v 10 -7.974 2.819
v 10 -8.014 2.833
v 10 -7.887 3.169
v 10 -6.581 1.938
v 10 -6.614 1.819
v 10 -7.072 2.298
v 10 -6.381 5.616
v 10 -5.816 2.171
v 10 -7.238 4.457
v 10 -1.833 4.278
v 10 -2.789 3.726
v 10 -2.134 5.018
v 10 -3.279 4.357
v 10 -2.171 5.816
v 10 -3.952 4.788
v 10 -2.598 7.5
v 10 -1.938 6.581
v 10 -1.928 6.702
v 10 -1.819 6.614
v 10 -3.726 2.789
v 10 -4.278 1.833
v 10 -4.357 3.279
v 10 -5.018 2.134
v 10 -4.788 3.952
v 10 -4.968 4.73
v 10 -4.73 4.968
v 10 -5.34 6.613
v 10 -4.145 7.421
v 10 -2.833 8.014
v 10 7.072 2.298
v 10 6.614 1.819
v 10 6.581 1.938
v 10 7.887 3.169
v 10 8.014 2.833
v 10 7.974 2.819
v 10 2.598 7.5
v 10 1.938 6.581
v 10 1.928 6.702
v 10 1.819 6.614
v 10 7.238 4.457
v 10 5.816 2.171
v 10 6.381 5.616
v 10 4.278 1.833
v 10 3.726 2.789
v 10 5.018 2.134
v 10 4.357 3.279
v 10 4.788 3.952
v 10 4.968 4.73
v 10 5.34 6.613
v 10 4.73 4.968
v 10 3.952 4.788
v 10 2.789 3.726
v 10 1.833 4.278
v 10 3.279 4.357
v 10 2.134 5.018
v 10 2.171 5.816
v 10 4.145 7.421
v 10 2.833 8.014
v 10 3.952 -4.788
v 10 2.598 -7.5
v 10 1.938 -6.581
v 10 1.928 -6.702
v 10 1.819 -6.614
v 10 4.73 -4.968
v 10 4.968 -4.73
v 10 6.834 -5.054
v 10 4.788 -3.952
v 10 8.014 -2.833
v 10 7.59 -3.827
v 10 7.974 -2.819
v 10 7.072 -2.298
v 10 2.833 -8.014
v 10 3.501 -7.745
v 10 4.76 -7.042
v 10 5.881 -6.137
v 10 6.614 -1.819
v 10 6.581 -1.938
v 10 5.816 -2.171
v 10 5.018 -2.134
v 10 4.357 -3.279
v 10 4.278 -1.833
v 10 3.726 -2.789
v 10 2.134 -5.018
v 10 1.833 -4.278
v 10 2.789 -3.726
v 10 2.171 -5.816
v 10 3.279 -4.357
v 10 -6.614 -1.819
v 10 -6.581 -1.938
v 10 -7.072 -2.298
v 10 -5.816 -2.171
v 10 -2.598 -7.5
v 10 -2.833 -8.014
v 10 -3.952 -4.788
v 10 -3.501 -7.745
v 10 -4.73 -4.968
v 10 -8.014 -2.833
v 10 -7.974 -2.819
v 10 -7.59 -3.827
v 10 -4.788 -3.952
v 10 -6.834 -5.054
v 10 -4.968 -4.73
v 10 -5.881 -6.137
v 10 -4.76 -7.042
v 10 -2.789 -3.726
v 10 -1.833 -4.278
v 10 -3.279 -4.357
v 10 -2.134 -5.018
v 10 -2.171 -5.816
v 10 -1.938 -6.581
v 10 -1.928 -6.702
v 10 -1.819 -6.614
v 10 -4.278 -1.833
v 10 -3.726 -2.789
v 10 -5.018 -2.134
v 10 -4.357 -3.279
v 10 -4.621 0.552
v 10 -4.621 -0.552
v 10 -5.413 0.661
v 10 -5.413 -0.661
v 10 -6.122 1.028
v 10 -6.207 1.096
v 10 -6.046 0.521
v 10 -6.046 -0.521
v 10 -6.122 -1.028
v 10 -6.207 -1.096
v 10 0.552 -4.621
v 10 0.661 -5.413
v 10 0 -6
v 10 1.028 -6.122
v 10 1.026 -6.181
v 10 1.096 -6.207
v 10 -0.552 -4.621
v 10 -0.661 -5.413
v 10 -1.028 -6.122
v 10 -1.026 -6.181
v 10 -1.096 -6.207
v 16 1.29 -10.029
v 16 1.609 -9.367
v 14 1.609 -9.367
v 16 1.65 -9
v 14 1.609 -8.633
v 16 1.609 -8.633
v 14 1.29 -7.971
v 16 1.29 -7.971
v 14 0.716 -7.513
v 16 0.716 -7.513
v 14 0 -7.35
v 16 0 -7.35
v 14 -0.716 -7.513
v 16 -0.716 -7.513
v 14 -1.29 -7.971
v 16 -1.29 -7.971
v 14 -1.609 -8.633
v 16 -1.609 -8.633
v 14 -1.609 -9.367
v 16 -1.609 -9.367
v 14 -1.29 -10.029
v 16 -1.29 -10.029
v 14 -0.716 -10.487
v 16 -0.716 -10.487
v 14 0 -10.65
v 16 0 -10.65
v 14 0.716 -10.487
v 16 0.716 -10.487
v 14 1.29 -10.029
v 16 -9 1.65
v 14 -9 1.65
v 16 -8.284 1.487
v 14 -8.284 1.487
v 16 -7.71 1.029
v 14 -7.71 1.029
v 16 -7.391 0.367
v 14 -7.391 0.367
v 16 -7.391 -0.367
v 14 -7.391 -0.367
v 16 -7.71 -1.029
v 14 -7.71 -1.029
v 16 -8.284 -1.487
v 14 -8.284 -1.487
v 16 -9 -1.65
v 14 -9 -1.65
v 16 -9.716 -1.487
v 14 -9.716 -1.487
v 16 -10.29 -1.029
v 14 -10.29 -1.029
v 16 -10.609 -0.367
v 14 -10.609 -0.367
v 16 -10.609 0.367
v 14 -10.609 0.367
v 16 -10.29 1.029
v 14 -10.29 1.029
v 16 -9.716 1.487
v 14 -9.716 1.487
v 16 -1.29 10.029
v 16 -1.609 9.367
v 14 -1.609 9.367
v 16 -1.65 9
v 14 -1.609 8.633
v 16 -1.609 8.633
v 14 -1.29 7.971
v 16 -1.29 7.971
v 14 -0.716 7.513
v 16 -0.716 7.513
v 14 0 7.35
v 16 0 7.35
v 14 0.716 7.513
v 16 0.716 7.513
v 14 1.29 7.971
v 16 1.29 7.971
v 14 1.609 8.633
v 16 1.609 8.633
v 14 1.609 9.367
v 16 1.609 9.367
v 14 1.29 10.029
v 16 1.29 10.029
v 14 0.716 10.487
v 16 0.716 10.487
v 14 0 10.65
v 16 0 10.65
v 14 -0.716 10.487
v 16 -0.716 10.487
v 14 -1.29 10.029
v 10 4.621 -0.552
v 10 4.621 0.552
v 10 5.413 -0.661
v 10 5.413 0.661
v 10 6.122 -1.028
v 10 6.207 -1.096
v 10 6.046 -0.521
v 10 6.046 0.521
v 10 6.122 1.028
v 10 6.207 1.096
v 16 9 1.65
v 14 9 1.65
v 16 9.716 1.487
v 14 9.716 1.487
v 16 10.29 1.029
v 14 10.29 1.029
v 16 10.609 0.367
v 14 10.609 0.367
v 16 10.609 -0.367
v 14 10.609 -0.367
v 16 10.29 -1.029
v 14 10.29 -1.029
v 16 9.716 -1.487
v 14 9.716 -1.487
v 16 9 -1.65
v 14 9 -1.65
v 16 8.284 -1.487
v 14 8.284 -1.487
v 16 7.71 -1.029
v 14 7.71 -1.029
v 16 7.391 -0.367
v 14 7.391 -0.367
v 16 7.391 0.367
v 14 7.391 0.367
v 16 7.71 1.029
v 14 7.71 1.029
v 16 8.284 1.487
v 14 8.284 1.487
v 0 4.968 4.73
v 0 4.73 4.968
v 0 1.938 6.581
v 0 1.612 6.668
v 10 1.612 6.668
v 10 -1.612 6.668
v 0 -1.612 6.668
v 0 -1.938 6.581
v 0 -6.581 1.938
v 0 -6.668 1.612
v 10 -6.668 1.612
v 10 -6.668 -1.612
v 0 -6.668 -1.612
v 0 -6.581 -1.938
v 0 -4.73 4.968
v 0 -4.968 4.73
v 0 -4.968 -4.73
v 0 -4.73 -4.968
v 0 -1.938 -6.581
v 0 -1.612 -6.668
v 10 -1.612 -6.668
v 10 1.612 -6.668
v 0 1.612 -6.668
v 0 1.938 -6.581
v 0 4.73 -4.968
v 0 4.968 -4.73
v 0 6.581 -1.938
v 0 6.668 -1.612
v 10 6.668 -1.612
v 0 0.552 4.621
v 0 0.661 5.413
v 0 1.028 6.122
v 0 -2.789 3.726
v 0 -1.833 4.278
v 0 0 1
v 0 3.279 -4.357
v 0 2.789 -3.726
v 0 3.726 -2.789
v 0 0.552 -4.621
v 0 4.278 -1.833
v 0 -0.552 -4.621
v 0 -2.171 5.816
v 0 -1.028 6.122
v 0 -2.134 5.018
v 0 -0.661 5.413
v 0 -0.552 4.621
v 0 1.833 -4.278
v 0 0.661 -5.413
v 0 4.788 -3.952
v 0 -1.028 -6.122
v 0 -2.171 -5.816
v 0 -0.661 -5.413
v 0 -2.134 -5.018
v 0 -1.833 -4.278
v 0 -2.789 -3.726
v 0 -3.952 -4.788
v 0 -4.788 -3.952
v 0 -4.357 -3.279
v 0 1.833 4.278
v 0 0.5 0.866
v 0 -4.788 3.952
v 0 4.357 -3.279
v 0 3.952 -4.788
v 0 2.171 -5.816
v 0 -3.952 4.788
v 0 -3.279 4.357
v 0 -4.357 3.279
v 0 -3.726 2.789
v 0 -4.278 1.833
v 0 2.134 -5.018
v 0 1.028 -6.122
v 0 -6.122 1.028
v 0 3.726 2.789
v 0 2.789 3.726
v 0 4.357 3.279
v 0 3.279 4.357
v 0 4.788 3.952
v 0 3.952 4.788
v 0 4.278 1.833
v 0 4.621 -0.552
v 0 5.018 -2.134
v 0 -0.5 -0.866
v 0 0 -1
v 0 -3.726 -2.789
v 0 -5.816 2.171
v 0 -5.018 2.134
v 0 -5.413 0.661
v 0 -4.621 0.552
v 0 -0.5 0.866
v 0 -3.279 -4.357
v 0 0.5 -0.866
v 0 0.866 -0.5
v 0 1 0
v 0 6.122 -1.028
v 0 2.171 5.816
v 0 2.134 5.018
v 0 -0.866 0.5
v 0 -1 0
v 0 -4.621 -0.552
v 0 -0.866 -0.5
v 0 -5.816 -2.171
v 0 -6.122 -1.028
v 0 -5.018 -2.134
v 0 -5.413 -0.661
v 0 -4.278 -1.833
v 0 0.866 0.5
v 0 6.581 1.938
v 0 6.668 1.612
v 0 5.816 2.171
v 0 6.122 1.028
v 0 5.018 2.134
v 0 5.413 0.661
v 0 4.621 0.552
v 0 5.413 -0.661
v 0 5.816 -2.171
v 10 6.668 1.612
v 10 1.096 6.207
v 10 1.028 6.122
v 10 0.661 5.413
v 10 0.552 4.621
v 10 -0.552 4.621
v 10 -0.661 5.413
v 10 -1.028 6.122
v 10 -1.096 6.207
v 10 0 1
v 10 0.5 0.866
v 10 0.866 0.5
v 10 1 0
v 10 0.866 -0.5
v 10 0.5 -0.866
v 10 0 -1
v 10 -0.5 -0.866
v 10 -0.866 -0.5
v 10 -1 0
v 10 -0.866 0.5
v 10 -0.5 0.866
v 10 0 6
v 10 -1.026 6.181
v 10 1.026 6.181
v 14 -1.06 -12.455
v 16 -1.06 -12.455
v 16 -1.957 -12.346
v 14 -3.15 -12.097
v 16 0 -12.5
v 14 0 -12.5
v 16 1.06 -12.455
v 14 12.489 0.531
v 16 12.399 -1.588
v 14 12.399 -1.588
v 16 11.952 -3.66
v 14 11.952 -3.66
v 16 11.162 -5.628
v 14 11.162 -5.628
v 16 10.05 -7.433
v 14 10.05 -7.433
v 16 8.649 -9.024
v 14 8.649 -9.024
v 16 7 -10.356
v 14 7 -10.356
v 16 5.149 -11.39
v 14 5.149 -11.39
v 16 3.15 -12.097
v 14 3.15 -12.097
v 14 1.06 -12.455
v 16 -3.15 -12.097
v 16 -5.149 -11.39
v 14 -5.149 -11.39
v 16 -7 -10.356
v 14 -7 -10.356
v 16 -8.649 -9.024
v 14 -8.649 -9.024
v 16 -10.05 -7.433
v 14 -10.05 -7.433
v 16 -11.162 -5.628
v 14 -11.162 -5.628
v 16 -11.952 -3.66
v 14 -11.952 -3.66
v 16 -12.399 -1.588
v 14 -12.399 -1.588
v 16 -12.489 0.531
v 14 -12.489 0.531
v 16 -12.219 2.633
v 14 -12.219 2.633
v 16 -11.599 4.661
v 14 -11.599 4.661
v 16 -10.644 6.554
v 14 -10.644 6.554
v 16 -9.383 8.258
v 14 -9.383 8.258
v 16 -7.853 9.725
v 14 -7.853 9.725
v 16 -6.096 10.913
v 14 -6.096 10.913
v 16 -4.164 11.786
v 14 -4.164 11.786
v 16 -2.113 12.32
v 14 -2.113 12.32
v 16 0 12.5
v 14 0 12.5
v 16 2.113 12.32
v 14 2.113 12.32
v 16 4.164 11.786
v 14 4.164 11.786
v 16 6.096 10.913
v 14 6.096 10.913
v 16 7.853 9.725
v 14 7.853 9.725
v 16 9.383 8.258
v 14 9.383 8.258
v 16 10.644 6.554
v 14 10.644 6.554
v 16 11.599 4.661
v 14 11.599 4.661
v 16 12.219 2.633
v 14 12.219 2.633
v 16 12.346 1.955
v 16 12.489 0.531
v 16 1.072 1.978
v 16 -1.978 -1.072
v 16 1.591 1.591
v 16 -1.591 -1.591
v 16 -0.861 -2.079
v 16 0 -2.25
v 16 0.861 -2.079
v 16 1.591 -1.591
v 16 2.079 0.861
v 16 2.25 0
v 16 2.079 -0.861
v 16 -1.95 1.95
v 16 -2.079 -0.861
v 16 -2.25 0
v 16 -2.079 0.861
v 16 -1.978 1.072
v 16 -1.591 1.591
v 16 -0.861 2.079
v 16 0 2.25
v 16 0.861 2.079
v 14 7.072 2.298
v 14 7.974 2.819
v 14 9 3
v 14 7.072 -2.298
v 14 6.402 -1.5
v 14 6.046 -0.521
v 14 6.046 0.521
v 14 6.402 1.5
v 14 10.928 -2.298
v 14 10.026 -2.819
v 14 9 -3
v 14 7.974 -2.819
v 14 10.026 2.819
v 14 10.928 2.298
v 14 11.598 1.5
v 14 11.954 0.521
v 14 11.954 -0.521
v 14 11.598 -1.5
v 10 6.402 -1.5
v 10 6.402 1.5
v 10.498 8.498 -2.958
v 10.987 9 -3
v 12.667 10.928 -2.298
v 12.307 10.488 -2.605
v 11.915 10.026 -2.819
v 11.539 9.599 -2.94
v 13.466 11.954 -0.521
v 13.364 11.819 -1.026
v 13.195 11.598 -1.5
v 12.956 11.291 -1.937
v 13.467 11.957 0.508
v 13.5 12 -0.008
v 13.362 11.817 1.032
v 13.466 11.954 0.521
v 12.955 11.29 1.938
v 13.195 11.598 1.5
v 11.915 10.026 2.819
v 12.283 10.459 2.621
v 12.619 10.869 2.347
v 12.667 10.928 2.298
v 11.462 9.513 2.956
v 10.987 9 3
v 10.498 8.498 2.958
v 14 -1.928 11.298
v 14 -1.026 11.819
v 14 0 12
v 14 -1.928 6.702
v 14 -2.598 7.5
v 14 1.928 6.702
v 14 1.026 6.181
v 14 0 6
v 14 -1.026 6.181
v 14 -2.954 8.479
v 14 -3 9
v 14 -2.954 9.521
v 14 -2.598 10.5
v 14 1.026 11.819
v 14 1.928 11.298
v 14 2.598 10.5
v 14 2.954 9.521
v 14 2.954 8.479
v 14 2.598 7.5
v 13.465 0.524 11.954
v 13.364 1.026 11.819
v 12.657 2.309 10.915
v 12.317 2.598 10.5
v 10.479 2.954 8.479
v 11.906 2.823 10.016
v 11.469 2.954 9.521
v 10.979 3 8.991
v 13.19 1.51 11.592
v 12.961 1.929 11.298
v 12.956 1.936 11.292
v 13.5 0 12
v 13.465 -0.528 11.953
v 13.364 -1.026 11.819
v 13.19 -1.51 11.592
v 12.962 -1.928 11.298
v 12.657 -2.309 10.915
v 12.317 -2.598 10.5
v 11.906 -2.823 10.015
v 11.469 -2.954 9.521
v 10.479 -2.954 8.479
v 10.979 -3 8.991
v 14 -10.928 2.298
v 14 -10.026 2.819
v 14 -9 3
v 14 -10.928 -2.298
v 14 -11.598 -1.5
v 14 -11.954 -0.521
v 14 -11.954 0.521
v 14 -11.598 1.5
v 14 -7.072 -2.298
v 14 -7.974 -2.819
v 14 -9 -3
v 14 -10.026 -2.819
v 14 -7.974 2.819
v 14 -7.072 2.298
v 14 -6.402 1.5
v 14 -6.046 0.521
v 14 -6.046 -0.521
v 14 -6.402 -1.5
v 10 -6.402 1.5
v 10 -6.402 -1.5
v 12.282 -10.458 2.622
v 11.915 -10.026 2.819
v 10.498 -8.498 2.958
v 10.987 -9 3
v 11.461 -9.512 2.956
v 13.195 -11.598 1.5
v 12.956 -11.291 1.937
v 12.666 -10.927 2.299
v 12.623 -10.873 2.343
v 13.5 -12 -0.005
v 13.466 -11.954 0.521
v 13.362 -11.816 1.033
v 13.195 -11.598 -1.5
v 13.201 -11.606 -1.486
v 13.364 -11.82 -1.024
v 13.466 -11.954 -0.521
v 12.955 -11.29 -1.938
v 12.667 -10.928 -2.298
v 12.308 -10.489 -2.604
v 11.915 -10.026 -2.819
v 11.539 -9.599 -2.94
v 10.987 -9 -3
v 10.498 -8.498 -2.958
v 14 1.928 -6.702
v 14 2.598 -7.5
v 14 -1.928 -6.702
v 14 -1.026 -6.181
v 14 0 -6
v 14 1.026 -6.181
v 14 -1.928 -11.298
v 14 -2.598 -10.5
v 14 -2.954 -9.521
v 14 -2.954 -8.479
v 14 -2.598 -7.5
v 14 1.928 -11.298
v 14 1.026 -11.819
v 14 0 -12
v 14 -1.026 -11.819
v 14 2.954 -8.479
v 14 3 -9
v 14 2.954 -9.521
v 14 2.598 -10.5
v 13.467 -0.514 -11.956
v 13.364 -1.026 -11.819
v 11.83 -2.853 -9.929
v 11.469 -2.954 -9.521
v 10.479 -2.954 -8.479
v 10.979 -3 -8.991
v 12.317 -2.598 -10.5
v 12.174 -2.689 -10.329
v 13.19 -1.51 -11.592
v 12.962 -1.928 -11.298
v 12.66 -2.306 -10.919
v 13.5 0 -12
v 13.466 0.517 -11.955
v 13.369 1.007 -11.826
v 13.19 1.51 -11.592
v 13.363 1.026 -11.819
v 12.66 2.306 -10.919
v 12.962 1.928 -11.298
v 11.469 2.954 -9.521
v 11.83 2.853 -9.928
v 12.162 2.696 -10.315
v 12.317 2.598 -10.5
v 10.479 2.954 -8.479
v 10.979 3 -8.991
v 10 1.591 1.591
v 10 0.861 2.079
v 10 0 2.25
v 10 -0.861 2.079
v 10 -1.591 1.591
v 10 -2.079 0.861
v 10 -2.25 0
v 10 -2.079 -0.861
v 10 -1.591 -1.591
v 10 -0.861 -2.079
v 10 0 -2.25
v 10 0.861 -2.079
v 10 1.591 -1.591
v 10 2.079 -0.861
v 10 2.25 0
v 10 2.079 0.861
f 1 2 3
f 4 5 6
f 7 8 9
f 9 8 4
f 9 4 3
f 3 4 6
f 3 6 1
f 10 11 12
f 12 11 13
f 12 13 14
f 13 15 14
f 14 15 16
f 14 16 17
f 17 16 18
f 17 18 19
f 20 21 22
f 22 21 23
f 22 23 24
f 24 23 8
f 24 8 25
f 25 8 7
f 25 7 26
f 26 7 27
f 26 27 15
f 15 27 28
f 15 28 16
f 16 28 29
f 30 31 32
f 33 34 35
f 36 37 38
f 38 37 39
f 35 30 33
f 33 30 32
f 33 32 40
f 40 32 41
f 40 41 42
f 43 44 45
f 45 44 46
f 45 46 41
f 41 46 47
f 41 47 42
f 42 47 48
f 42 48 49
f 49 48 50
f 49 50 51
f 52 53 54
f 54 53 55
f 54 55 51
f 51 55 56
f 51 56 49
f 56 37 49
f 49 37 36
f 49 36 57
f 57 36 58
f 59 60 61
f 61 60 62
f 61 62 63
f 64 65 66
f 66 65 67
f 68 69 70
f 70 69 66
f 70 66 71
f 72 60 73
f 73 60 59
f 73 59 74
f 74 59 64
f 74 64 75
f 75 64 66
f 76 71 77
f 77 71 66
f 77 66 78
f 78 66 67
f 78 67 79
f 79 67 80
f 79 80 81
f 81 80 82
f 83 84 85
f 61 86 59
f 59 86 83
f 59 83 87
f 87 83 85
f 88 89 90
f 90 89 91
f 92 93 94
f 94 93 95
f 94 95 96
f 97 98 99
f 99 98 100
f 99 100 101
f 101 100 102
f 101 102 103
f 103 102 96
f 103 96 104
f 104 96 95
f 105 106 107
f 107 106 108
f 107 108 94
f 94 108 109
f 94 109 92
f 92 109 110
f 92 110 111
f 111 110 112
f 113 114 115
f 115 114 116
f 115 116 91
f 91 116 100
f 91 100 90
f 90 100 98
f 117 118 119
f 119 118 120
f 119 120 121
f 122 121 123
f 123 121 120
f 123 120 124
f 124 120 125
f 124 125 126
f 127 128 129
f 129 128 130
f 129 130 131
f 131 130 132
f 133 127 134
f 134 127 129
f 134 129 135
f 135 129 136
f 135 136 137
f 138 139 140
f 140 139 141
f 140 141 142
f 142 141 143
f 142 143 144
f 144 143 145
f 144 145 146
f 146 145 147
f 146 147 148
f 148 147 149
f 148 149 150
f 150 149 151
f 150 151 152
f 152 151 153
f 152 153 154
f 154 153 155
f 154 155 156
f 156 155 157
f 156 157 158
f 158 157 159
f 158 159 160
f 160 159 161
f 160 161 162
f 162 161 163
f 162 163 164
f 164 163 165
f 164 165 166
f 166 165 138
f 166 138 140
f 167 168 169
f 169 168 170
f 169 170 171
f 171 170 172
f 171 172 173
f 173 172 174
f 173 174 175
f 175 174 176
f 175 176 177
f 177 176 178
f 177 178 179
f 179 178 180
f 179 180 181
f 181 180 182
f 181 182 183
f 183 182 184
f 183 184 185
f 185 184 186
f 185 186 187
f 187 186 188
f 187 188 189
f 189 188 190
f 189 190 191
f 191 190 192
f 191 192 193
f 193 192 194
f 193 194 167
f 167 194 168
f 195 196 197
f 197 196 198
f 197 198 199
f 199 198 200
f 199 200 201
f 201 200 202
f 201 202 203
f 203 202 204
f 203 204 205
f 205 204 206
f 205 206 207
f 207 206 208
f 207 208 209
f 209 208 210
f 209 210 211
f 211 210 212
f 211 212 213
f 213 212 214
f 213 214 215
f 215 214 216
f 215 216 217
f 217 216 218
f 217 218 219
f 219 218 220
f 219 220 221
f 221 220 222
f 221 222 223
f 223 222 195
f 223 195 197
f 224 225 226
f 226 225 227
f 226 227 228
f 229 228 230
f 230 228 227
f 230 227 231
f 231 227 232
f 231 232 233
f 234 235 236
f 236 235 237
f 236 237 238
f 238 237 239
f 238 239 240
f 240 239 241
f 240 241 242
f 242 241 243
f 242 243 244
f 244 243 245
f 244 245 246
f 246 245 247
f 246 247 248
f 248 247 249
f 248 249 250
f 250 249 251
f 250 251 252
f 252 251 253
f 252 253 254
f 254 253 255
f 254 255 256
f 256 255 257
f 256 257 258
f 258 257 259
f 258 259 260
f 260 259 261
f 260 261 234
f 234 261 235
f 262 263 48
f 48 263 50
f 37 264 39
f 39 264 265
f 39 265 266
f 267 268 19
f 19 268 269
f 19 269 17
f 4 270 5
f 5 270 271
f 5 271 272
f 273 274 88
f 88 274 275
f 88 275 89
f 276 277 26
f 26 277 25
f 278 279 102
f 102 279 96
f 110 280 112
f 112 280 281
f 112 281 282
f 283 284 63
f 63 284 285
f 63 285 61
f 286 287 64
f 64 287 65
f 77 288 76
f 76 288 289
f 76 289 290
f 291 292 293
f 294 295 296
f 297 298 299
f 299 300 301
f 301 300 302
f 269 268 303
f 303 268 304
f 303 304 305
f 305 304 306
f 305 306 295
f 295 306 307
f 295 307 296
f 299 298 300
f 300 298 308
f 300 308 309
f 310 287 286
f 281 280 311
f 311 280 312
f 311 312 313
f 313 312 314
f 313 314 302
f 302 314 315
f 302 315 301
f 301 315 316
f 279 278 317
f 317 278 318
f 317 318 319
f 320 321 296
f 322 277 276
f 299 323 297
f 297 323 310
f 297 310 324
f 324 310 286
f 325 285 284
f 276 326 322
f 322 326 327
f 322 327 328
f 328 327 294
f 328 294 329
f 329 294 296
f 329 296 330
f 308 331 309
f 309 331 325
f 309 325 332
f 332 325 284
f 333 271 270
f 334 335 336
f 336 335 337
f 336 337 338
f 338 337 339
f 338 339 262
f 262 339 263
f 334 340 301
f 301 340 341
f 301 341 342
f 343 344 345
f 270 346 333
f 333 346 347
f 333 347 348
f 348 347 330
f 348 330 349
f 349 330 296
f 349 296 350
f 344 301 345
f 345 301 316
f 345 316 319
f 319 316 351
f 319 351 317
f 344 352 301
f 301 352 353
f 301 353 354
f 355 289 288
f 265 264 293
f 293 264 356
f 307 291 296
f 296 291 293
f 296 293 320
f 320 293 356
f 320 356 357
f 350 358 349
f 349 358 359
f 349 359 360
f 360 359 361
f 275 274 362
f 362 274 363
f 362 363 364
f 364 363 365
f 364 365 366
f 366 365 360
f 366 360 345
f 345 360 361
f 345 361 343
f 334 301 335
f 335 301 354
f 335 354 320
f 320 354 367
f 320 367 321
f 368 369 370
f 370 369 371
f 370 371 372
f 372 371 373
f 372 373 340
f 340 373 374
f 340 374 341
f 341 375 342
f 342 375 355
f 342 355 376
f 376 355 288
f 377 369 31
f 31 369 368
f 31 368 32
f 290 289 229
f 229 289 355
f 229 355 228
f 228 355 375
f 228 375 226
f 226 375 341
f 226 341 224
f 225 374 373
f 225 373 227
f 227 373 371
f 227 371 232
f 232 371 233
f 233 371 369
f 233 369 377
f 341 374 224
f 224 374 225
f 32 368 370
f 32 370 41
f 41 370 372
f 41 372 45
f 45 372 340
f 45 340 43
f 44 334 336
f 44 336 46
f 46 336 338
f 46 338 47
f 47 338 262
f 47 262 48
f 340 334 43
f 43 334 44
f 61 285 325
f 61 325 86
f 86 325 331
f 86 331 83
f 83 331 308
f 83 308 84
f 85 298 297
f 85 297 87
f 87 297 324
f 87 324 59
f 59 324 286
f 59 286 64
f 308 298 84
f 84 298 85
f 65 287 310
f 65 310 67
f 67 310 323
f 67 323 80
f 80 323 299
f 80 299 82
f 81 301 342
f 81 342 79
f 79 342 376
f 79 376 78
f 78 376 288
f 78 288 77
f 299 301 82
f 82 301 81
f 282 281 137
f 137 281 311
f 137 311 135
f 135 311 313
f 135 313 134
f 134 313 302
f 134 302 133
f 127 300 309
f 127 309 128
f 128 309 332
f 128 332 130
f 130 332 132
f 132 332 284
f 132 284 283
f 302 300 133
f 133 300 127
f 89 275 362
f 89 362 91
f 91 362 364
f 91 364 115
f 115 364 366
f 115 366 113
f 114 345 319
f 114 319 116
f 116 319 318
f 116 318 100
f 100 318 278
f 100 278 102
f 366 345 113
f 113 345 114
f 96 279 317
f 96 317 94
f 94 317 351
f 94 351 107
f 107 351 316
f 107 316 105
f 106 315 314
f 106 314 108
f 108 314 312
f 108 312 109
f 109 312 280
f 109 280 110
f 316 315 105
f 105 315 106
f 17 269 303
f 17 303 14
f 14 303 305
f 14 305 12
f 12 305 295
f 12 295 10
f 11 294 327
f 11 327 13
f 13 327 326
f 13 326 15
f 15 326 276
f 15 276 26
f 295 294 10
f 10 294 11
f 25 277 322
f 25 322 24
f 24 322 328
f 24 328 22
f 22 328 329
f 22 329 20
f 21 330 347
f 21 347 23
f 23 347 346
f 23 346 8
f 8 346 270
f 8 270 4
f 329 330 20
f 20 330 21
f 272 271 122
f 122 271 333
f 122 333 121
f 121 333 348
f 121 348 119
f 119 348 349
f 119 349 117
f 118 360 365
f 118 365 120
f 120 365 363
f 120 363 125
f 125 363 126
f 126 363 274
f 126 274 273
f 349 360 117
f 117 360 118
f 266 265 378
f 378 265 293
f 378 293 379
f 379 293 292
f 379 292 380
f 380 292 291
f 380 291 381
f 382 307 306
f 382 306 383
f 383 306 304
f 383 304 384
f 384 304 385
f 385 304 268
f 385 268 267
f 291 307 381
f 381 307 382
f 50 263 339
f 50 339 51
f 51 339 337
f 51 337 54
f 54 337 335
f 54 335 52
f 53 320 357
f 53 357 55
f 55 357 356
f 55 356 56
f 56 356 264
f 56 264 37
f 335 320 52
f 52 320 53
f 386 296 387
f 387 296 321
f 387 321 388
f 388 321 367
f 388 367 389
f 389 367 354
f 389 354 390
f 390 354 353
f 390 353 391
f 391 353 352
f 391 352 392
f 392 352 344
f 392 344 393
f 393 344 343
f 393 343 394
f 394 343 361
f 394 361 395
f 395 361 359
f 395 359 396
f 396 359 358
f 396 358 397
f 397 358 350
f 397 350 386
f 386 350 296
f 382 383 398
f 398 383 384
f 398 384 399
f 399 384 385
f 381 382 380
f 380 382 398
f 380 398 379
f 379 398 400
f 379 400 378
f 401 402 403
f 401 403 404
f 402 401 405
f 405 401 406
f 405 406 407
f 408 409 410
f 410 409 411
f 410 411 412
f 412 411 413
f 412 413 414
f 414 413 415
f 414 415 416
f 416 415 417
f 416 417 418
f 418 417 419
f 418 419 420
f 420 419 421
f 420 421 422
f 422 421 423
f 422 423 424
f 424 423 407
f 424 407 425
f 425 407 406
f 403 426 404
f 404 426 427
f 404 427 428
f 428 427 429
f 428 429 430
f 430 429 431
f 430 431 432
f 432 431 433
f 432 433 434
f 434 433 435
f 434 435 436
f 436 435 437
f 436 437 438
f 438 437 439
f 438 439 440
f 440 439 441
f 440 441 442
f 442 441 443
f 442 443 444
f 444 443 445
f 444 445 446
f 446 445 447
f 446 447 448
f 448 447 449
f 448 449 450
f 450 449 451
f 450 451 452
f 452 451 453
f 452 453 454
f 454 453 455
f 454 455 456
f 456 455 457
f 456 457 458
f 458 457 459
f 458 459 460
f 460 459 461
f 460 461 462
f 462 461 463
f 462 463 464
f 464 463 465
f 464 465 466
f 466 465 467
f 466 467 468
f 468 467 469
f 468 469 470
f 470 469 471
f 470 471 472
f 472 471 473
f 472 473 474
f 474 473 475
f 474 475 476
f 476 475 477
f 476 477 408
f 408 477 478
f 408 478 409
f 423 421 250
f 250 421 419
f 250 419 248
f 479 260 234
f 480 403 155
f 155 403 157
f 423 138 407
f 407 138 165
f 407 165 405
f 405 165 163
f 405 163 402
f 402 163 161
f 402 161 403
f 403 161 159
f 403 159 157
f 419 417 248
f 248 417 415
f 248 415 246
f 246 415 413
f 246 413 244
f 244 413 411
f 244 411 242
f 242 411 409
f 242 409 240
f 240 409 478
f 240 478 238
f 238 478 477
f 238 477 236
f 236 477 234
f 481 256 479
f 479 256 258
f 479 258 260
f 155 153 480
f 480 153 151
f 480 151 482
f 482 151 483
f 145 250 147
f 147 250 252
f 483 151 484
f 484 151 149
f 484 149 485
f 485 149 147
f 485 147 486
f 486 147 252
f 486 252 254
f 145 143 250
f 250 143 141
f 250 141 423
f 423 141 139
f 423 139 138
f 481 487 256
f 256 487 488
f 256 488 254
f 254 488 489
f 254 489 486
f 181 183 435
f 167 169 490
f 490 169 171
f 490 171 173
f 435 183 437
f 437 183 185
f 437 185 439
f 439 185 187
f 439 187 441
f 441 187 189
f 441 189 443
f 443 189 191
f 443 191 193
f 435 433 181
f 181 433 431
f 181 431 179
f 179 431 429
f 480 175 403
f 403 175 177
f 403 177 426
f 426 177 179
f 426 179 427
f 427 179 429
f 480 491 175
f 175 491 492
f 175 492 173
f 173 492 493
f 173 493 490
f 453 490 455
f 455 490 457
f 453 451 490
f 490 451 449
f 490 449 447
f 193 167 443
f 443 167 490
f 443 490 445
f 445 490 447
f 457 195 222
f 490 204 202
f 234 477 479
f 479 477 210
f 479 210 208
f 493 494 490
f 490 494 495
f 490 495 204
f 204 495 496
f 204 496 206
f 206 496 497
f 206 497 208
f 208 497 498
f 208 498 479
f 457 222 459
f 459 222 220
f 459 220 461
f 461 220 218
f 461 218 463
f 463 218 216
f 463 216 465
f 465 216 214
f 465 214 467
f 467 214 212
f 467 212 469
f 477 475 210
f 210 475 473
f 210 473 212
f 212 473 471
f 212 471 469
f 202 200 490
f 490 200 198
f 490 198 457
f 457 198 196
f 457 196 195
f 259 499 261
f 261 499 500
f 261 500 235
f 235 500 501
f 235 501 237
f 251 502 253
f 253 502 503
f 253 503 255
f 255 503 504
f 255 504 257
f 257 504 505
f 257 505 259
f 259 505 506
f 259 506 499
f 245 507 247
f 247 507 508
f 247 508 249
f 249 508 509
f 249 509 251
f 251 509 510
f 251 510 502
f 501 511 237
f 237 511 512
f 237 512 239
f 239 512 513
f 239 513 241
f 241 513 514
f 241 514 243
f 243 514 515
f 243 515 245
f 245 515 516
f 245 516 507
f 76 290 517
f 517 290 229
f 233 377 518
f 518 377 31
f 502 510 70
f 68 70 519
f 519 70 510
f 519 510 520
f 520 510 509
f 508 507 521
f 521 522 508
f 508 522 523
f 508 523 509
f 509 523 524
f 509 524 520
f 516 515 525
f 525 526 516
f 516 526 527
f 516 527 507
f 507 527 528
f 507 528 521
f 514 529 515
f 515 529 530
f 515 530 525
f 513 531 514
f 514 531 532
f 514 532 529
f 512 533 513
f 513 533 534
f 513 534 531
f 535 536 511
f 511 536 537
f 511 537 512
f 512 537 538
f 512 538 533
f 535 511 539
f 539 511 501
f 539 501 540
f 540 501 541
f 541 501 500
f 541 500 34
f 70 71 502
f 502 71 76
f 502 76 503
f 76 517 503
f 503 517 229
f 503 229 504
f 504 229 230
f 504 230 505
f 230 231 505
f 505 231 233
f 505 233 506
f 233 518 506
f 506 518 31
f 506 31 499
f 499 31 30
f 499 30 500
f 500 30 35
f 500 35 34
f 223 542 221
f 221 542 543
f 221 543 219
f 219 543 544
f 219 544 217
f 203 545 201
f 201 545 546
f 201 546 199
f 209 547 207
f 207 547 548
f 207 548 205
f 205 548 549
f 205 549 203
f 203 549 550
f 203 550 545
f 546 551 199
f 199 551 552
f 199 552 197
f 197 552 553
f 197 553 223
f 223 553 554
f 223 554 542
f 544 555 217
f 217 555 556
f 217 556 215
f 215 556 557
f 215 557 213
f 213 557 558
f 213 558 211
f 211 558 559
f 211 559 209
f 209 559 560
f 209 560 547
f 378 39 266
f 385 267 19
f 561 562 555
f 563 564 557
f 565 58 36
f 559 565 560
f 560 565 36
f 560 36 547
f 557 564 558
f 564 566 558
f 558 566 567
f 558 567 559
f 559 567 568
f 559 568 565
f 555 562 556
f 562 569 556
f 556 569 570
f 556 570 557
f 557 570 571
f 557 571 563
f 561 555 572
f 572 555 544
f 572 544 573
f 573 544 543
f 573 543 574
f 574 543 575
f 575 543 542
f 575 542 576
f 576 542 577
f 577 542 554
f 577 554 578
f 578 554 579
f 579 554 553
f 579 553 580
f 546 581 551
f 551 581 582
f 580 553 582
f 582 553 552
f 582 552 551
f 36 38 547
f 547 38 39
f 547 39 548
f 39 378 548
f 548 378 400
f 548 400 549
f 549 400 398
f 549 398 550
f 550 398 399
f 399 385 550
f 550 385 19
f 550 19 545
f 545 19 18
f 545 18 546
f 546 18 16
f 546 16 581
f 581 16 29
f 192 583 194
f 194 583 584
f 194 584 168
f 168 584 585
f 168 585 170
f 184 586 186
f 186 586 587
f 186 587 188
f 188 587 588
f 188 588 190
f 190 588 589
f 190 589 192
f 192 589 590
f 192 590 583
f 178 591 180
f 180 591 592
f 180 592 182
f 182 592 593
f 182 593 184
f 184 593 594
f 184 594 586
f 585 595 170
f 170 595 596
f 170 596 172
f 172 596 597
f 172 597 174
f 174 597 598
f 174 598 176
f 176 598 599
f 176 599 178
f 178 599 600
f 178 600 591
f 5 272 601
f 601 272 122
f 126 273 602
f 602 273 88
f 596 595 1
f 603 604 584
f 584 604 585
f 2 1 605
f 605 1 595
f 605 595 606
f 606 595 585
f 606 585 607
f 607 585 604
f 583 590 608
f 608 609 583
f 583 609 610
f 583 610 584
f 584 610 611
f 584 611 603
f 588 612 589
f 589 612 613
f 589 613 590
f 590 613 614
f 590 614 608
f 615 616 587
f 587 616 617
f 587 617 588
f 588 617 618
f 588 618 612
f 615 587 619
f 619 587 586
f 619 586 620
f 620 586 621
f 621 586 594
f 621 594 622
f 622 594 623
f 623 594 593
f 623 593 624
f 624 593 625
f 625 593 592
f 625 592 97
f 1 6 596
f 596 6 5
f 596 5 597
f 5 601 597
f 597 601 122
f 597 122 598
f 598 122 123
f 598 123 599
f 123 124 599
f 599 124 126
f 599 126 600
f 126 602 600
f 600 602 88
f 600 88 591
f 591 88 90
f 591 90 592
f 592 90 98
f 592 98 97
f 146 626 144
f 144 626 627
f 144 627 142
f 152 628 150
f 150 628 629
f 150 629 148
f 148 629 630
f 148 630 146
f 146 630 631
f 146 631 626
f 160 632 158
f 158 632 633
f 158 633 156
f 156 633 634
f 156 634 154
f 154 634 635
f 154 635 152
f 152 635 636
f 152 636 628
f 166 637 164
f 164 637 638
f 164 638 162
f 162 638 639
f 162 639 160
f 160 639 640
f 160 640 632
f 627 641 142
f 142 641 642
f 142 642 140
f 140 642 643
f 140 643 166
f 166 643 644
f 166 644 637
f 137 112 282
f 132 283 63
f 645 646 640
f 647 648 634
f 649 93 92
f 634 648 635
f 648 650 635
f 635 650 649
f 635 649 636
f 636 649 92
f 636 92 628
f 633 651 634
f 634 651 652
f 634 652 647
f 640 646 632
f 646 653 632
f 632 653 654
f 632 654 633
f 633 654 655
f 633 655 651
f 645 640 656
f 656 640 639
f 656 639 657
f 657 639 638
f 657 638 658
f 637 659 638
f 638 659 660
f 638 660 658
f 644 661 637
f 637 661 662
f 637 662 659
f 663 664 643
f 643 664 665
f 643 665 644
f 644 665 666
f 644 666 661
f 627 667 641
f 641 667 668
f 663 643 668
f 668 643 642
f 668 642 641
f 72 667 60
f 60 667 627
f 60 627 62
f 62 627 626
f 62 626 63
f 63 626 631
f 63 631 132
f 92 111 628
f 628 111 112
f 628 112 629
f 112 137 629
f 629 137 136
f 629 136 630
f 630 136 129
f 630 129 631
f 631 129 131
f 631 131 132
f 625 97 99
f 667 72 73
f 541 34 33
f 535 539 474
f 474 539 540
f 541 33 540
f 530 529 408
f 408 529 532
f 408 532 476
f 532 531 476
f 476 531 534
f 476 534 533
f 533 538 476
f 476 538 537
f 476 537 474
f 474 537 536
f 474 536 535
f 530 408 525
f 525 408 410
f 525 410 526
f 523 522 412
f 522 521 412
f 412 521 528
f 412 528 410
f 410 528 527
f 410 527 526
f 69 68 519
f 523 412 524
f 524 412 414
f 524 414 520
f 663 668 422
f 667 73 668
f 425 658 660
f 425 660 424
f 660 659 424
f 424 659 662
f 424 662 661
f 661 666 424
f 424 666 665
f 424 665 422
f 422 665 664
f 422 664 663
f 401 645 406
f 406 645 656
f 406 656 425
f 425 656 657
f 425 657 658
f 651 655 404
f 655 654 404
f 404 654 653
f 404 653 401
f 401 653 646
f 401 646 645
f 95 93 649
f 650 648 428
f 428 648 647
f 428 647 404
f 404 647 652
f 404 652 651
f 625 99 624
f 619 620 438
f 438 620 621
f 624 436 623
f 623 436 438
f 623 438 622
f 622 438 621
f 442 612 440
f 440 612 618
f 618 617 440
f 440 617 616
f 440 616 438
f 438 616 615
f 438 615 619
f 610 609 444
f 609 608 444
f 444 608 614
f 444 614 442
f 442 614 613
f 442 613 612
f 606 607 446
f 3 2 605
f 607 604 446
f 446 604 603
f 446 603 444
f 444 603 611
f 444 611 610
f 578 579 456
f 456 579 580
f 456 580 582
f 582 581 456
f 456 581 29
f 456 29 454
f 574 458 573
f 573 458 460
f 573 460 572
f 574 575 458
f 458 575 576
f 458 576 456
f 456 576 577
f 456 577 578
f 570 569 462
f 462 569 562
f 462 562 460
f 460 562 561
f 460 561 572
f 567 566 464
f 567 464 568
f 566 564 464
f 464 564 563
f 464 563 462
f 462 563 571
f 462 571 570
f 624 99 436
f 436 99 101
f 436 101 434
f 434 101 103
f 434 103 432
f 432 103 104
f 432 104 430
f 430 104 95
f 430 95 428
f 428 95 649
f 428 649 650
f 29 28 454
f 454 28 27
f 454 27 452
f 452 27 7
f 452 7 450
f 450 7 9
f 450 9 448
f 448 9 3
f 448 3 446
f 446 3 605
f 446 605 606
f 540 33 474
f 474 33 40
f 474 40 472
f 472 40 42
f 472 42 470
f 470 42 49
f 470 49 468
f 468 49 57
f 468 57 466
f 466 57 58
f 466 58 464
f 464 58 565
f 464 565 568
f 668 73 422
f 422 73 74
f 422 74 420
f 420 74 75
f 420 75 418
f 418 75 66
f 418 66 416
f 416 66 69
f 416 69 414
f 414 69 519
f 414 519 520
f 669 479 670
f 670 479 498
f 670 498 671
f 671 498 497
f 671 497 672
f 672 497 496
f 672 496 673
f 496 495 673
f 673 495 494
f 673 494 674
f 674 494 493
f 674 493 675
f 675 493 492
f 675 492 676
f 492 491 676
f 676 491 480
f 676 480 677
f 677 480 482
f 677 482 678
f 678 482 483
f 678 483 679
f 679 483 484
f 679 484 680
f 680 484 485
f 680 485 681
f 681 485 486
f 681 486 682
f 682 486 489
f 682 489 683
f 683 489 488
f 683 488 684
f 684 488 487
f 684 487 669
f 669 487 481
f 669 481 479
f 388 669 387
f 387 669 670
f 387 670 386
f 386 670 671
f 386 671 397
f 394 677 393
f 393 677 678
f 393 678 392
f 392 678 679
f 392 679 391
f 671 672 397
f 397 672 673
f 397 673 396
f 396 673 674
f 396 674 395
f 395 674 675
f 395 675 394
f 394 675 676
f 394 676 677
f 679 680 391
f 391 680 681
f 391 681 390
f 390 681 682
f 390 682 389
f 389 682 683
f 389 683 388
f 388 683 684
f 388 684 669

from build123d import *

# Parameters (mm, degrees)
BASPROSKE_W         = 10
BASPROSKE_H         = 6.86
TOOTHCUT_DEPTH      = 14.932666651
TEETHCUTS_COUNT     = 12
TEETHCUTS_ANGLE     = 330
BORSKE_R            = 1
BORE_DEPTH          = 50.0000508
SKETCH1_R           = 12.5
BOSS_EXTRUDE1_DEPTH = 6
SKETCH2_R           = 1.65
CUT_EXTRUDE1_DEPTH  = 21.310096012
SKETCH3_R           = 3
CUT_EXTRUDE2_DEPTH  = 4
CIRPATTERN1_COUNT   = 4
CHAMFER1_SIZE       = 4
SKETCH4_R           = 2.25
CUT_EXTRUDE3_DEPTH  = 6


with BuildPart() as part:
    # BasProSke → Base-Revolve (revolve)
    with BuildSketch(Plane(origin=(0, 0, 0), x_dir=(1, 0, 0), z_dir=(0, 1, 0)), mode=Mode.PRIVATE) as base_revolve_sk:
        with Locations((5, 3.43)):
            Rectangle(BASPROSKE_W, BASPROSKE_H)
    revolve(base_revolve_sk.sketch.rotate(Axis((-10, 0, 0), (1, 0, 0)), 180), axis=Axis((-10, 0, 0), (1, 0, 0)))

    # TooCutSke → ToothCut (cut, through all)
    with BuildSketch(Plane(origin=(0, 0, 0), x_dir=(0, 0, -1), z_dir=(1, 0, 0))):
        with BuildLine():
            ThreePointArc((0.552016647, 4.621146354), (0, 4.654), (-0.552016647, 4.621146354))
            ThreePointArc((-0.552016647, 4.621146354), (-0.822258441, 5.798784691), (-1.641510828, 6.686865885))
            ThreePointArc((-1.641510828, 6.686865885), (0, 6.8854), (1.641510828, 6.686865885))
            ThreePointArc((1.641510828, 6.686865885), (0.822258441, 5.798784691), (0.552016647, 4.621146354))
        make_face()
    toothcut = extrude(amount=TOOTHCUT_DEPTH, mode=Mode.SUBTRACT)

    # TeethCuts: ToothCut ×12 about axis
    teethcuts_axis = Axis((-10, 0, 0), (1, 0, 0))
    for i in range(1, TEETHCUTS_COUNT):
        add(toothcut.rotate(teethcuts_axis, i * TEETHCUTS_ANGLE / (TEETHCUTS_COUNT - 1)), mode=Mode.SUBTRACT)

    # BorSke → Bore (cut, symmetric)
    with BuildSketch(Plane(origin=(0, 0, 0), x_dir=(0, 0, -1), z_dir=(1, 0, 0))):
        with Locations(Location((0, 0, 0), (0, 0, 180))):
            Circle(BORSKE_R)
    extrude(amount=BORE_DEPTH, both=True, mode=Mode.SUBTRACT)

    # Sketch1 → Boss-Extrude1 (add)
    with BuildSketch(Plane(origin=(10, 0, 0), x_dir=(0, 0, -1), z_dir=(1, 0, 0))):
        Circle(SKETCH1_R)
    extrude(amount=BOSS_EXTRUDE1_DEPTH)

    # Sketch2 → Cut-Extrude1 (cut, through all)
    with BuildSketch(Plane.ZY.offset(-10)):
        with Locations((0, 9)):
            Circle(SKETCH2_R)
    cut_extrude1 = extrude(amount=-CUT_EXTRUDE1_DEPTH, mode=Mode.SUBTRACT)

    # Sketch3 → Cut-Extrude2 (cut)
    with BuildSketch(Plane.ZY.offset(-10)):
        with Locations((0, 9)):
            Circle(SKETCH3_R)
    cut_extrude2 = extrude(amount=-CUT_EXTRUDE2_DEPTH, mode=Mode.SUBTRACT)

    # CirPattern1: Cut-Extrude1, Cut-Extrude2 ×4 about axis
    cirpattern1_axis = Axis((0, 0, 0), (1, 0, 0))
    add([cut_extrude1.rotate(cirpattern1_axis, i * 360 / CIRPATTERN1_COUNT) for i in range(1, CIRPATTERN1_COUNT)], mode=Mode.SUBTRACT)
    add([cut_extrude2.rotate(cirpattern1_axis, i * 360 / CIRPATTERN1_COUNT) for i in range(1, CIRPATTERN1_COUNT)], mode=Mode.SUBTRACT)

    # Chamfer1
    # the kernel refuses this chamfer: 4 mm, written as the material it takes off along each edge
    with BuildSketch(Plane(origin=(10, 0, 0), x_dir=(0, 0, -1), z_dir=(0, -1, 0))) as chamfer1_piece_1:
        Polygon((12.5, CHAMFER1_SIZE), (12.5 - CHAMFER1_SIZE, 0), (12.5, 0), align=None)
    revolve(axis=Axis((10, 0, 0), (1, 0, 0)), mode=Mode.SUBTRACT)

    # Sketch4 → Cut-Extrude3 (cut)
    with BuildSketch(Plane(origin=(16, 0, 0), x_dir=(0, 0, -1), z_dir=(1, 0, 0))):
        Circle(SKETCH4_R)
    extrude(amount=-CUT_EXTRUDE3_DEPTH, mode=Mode.SUBTRACT)


solid = part.part
